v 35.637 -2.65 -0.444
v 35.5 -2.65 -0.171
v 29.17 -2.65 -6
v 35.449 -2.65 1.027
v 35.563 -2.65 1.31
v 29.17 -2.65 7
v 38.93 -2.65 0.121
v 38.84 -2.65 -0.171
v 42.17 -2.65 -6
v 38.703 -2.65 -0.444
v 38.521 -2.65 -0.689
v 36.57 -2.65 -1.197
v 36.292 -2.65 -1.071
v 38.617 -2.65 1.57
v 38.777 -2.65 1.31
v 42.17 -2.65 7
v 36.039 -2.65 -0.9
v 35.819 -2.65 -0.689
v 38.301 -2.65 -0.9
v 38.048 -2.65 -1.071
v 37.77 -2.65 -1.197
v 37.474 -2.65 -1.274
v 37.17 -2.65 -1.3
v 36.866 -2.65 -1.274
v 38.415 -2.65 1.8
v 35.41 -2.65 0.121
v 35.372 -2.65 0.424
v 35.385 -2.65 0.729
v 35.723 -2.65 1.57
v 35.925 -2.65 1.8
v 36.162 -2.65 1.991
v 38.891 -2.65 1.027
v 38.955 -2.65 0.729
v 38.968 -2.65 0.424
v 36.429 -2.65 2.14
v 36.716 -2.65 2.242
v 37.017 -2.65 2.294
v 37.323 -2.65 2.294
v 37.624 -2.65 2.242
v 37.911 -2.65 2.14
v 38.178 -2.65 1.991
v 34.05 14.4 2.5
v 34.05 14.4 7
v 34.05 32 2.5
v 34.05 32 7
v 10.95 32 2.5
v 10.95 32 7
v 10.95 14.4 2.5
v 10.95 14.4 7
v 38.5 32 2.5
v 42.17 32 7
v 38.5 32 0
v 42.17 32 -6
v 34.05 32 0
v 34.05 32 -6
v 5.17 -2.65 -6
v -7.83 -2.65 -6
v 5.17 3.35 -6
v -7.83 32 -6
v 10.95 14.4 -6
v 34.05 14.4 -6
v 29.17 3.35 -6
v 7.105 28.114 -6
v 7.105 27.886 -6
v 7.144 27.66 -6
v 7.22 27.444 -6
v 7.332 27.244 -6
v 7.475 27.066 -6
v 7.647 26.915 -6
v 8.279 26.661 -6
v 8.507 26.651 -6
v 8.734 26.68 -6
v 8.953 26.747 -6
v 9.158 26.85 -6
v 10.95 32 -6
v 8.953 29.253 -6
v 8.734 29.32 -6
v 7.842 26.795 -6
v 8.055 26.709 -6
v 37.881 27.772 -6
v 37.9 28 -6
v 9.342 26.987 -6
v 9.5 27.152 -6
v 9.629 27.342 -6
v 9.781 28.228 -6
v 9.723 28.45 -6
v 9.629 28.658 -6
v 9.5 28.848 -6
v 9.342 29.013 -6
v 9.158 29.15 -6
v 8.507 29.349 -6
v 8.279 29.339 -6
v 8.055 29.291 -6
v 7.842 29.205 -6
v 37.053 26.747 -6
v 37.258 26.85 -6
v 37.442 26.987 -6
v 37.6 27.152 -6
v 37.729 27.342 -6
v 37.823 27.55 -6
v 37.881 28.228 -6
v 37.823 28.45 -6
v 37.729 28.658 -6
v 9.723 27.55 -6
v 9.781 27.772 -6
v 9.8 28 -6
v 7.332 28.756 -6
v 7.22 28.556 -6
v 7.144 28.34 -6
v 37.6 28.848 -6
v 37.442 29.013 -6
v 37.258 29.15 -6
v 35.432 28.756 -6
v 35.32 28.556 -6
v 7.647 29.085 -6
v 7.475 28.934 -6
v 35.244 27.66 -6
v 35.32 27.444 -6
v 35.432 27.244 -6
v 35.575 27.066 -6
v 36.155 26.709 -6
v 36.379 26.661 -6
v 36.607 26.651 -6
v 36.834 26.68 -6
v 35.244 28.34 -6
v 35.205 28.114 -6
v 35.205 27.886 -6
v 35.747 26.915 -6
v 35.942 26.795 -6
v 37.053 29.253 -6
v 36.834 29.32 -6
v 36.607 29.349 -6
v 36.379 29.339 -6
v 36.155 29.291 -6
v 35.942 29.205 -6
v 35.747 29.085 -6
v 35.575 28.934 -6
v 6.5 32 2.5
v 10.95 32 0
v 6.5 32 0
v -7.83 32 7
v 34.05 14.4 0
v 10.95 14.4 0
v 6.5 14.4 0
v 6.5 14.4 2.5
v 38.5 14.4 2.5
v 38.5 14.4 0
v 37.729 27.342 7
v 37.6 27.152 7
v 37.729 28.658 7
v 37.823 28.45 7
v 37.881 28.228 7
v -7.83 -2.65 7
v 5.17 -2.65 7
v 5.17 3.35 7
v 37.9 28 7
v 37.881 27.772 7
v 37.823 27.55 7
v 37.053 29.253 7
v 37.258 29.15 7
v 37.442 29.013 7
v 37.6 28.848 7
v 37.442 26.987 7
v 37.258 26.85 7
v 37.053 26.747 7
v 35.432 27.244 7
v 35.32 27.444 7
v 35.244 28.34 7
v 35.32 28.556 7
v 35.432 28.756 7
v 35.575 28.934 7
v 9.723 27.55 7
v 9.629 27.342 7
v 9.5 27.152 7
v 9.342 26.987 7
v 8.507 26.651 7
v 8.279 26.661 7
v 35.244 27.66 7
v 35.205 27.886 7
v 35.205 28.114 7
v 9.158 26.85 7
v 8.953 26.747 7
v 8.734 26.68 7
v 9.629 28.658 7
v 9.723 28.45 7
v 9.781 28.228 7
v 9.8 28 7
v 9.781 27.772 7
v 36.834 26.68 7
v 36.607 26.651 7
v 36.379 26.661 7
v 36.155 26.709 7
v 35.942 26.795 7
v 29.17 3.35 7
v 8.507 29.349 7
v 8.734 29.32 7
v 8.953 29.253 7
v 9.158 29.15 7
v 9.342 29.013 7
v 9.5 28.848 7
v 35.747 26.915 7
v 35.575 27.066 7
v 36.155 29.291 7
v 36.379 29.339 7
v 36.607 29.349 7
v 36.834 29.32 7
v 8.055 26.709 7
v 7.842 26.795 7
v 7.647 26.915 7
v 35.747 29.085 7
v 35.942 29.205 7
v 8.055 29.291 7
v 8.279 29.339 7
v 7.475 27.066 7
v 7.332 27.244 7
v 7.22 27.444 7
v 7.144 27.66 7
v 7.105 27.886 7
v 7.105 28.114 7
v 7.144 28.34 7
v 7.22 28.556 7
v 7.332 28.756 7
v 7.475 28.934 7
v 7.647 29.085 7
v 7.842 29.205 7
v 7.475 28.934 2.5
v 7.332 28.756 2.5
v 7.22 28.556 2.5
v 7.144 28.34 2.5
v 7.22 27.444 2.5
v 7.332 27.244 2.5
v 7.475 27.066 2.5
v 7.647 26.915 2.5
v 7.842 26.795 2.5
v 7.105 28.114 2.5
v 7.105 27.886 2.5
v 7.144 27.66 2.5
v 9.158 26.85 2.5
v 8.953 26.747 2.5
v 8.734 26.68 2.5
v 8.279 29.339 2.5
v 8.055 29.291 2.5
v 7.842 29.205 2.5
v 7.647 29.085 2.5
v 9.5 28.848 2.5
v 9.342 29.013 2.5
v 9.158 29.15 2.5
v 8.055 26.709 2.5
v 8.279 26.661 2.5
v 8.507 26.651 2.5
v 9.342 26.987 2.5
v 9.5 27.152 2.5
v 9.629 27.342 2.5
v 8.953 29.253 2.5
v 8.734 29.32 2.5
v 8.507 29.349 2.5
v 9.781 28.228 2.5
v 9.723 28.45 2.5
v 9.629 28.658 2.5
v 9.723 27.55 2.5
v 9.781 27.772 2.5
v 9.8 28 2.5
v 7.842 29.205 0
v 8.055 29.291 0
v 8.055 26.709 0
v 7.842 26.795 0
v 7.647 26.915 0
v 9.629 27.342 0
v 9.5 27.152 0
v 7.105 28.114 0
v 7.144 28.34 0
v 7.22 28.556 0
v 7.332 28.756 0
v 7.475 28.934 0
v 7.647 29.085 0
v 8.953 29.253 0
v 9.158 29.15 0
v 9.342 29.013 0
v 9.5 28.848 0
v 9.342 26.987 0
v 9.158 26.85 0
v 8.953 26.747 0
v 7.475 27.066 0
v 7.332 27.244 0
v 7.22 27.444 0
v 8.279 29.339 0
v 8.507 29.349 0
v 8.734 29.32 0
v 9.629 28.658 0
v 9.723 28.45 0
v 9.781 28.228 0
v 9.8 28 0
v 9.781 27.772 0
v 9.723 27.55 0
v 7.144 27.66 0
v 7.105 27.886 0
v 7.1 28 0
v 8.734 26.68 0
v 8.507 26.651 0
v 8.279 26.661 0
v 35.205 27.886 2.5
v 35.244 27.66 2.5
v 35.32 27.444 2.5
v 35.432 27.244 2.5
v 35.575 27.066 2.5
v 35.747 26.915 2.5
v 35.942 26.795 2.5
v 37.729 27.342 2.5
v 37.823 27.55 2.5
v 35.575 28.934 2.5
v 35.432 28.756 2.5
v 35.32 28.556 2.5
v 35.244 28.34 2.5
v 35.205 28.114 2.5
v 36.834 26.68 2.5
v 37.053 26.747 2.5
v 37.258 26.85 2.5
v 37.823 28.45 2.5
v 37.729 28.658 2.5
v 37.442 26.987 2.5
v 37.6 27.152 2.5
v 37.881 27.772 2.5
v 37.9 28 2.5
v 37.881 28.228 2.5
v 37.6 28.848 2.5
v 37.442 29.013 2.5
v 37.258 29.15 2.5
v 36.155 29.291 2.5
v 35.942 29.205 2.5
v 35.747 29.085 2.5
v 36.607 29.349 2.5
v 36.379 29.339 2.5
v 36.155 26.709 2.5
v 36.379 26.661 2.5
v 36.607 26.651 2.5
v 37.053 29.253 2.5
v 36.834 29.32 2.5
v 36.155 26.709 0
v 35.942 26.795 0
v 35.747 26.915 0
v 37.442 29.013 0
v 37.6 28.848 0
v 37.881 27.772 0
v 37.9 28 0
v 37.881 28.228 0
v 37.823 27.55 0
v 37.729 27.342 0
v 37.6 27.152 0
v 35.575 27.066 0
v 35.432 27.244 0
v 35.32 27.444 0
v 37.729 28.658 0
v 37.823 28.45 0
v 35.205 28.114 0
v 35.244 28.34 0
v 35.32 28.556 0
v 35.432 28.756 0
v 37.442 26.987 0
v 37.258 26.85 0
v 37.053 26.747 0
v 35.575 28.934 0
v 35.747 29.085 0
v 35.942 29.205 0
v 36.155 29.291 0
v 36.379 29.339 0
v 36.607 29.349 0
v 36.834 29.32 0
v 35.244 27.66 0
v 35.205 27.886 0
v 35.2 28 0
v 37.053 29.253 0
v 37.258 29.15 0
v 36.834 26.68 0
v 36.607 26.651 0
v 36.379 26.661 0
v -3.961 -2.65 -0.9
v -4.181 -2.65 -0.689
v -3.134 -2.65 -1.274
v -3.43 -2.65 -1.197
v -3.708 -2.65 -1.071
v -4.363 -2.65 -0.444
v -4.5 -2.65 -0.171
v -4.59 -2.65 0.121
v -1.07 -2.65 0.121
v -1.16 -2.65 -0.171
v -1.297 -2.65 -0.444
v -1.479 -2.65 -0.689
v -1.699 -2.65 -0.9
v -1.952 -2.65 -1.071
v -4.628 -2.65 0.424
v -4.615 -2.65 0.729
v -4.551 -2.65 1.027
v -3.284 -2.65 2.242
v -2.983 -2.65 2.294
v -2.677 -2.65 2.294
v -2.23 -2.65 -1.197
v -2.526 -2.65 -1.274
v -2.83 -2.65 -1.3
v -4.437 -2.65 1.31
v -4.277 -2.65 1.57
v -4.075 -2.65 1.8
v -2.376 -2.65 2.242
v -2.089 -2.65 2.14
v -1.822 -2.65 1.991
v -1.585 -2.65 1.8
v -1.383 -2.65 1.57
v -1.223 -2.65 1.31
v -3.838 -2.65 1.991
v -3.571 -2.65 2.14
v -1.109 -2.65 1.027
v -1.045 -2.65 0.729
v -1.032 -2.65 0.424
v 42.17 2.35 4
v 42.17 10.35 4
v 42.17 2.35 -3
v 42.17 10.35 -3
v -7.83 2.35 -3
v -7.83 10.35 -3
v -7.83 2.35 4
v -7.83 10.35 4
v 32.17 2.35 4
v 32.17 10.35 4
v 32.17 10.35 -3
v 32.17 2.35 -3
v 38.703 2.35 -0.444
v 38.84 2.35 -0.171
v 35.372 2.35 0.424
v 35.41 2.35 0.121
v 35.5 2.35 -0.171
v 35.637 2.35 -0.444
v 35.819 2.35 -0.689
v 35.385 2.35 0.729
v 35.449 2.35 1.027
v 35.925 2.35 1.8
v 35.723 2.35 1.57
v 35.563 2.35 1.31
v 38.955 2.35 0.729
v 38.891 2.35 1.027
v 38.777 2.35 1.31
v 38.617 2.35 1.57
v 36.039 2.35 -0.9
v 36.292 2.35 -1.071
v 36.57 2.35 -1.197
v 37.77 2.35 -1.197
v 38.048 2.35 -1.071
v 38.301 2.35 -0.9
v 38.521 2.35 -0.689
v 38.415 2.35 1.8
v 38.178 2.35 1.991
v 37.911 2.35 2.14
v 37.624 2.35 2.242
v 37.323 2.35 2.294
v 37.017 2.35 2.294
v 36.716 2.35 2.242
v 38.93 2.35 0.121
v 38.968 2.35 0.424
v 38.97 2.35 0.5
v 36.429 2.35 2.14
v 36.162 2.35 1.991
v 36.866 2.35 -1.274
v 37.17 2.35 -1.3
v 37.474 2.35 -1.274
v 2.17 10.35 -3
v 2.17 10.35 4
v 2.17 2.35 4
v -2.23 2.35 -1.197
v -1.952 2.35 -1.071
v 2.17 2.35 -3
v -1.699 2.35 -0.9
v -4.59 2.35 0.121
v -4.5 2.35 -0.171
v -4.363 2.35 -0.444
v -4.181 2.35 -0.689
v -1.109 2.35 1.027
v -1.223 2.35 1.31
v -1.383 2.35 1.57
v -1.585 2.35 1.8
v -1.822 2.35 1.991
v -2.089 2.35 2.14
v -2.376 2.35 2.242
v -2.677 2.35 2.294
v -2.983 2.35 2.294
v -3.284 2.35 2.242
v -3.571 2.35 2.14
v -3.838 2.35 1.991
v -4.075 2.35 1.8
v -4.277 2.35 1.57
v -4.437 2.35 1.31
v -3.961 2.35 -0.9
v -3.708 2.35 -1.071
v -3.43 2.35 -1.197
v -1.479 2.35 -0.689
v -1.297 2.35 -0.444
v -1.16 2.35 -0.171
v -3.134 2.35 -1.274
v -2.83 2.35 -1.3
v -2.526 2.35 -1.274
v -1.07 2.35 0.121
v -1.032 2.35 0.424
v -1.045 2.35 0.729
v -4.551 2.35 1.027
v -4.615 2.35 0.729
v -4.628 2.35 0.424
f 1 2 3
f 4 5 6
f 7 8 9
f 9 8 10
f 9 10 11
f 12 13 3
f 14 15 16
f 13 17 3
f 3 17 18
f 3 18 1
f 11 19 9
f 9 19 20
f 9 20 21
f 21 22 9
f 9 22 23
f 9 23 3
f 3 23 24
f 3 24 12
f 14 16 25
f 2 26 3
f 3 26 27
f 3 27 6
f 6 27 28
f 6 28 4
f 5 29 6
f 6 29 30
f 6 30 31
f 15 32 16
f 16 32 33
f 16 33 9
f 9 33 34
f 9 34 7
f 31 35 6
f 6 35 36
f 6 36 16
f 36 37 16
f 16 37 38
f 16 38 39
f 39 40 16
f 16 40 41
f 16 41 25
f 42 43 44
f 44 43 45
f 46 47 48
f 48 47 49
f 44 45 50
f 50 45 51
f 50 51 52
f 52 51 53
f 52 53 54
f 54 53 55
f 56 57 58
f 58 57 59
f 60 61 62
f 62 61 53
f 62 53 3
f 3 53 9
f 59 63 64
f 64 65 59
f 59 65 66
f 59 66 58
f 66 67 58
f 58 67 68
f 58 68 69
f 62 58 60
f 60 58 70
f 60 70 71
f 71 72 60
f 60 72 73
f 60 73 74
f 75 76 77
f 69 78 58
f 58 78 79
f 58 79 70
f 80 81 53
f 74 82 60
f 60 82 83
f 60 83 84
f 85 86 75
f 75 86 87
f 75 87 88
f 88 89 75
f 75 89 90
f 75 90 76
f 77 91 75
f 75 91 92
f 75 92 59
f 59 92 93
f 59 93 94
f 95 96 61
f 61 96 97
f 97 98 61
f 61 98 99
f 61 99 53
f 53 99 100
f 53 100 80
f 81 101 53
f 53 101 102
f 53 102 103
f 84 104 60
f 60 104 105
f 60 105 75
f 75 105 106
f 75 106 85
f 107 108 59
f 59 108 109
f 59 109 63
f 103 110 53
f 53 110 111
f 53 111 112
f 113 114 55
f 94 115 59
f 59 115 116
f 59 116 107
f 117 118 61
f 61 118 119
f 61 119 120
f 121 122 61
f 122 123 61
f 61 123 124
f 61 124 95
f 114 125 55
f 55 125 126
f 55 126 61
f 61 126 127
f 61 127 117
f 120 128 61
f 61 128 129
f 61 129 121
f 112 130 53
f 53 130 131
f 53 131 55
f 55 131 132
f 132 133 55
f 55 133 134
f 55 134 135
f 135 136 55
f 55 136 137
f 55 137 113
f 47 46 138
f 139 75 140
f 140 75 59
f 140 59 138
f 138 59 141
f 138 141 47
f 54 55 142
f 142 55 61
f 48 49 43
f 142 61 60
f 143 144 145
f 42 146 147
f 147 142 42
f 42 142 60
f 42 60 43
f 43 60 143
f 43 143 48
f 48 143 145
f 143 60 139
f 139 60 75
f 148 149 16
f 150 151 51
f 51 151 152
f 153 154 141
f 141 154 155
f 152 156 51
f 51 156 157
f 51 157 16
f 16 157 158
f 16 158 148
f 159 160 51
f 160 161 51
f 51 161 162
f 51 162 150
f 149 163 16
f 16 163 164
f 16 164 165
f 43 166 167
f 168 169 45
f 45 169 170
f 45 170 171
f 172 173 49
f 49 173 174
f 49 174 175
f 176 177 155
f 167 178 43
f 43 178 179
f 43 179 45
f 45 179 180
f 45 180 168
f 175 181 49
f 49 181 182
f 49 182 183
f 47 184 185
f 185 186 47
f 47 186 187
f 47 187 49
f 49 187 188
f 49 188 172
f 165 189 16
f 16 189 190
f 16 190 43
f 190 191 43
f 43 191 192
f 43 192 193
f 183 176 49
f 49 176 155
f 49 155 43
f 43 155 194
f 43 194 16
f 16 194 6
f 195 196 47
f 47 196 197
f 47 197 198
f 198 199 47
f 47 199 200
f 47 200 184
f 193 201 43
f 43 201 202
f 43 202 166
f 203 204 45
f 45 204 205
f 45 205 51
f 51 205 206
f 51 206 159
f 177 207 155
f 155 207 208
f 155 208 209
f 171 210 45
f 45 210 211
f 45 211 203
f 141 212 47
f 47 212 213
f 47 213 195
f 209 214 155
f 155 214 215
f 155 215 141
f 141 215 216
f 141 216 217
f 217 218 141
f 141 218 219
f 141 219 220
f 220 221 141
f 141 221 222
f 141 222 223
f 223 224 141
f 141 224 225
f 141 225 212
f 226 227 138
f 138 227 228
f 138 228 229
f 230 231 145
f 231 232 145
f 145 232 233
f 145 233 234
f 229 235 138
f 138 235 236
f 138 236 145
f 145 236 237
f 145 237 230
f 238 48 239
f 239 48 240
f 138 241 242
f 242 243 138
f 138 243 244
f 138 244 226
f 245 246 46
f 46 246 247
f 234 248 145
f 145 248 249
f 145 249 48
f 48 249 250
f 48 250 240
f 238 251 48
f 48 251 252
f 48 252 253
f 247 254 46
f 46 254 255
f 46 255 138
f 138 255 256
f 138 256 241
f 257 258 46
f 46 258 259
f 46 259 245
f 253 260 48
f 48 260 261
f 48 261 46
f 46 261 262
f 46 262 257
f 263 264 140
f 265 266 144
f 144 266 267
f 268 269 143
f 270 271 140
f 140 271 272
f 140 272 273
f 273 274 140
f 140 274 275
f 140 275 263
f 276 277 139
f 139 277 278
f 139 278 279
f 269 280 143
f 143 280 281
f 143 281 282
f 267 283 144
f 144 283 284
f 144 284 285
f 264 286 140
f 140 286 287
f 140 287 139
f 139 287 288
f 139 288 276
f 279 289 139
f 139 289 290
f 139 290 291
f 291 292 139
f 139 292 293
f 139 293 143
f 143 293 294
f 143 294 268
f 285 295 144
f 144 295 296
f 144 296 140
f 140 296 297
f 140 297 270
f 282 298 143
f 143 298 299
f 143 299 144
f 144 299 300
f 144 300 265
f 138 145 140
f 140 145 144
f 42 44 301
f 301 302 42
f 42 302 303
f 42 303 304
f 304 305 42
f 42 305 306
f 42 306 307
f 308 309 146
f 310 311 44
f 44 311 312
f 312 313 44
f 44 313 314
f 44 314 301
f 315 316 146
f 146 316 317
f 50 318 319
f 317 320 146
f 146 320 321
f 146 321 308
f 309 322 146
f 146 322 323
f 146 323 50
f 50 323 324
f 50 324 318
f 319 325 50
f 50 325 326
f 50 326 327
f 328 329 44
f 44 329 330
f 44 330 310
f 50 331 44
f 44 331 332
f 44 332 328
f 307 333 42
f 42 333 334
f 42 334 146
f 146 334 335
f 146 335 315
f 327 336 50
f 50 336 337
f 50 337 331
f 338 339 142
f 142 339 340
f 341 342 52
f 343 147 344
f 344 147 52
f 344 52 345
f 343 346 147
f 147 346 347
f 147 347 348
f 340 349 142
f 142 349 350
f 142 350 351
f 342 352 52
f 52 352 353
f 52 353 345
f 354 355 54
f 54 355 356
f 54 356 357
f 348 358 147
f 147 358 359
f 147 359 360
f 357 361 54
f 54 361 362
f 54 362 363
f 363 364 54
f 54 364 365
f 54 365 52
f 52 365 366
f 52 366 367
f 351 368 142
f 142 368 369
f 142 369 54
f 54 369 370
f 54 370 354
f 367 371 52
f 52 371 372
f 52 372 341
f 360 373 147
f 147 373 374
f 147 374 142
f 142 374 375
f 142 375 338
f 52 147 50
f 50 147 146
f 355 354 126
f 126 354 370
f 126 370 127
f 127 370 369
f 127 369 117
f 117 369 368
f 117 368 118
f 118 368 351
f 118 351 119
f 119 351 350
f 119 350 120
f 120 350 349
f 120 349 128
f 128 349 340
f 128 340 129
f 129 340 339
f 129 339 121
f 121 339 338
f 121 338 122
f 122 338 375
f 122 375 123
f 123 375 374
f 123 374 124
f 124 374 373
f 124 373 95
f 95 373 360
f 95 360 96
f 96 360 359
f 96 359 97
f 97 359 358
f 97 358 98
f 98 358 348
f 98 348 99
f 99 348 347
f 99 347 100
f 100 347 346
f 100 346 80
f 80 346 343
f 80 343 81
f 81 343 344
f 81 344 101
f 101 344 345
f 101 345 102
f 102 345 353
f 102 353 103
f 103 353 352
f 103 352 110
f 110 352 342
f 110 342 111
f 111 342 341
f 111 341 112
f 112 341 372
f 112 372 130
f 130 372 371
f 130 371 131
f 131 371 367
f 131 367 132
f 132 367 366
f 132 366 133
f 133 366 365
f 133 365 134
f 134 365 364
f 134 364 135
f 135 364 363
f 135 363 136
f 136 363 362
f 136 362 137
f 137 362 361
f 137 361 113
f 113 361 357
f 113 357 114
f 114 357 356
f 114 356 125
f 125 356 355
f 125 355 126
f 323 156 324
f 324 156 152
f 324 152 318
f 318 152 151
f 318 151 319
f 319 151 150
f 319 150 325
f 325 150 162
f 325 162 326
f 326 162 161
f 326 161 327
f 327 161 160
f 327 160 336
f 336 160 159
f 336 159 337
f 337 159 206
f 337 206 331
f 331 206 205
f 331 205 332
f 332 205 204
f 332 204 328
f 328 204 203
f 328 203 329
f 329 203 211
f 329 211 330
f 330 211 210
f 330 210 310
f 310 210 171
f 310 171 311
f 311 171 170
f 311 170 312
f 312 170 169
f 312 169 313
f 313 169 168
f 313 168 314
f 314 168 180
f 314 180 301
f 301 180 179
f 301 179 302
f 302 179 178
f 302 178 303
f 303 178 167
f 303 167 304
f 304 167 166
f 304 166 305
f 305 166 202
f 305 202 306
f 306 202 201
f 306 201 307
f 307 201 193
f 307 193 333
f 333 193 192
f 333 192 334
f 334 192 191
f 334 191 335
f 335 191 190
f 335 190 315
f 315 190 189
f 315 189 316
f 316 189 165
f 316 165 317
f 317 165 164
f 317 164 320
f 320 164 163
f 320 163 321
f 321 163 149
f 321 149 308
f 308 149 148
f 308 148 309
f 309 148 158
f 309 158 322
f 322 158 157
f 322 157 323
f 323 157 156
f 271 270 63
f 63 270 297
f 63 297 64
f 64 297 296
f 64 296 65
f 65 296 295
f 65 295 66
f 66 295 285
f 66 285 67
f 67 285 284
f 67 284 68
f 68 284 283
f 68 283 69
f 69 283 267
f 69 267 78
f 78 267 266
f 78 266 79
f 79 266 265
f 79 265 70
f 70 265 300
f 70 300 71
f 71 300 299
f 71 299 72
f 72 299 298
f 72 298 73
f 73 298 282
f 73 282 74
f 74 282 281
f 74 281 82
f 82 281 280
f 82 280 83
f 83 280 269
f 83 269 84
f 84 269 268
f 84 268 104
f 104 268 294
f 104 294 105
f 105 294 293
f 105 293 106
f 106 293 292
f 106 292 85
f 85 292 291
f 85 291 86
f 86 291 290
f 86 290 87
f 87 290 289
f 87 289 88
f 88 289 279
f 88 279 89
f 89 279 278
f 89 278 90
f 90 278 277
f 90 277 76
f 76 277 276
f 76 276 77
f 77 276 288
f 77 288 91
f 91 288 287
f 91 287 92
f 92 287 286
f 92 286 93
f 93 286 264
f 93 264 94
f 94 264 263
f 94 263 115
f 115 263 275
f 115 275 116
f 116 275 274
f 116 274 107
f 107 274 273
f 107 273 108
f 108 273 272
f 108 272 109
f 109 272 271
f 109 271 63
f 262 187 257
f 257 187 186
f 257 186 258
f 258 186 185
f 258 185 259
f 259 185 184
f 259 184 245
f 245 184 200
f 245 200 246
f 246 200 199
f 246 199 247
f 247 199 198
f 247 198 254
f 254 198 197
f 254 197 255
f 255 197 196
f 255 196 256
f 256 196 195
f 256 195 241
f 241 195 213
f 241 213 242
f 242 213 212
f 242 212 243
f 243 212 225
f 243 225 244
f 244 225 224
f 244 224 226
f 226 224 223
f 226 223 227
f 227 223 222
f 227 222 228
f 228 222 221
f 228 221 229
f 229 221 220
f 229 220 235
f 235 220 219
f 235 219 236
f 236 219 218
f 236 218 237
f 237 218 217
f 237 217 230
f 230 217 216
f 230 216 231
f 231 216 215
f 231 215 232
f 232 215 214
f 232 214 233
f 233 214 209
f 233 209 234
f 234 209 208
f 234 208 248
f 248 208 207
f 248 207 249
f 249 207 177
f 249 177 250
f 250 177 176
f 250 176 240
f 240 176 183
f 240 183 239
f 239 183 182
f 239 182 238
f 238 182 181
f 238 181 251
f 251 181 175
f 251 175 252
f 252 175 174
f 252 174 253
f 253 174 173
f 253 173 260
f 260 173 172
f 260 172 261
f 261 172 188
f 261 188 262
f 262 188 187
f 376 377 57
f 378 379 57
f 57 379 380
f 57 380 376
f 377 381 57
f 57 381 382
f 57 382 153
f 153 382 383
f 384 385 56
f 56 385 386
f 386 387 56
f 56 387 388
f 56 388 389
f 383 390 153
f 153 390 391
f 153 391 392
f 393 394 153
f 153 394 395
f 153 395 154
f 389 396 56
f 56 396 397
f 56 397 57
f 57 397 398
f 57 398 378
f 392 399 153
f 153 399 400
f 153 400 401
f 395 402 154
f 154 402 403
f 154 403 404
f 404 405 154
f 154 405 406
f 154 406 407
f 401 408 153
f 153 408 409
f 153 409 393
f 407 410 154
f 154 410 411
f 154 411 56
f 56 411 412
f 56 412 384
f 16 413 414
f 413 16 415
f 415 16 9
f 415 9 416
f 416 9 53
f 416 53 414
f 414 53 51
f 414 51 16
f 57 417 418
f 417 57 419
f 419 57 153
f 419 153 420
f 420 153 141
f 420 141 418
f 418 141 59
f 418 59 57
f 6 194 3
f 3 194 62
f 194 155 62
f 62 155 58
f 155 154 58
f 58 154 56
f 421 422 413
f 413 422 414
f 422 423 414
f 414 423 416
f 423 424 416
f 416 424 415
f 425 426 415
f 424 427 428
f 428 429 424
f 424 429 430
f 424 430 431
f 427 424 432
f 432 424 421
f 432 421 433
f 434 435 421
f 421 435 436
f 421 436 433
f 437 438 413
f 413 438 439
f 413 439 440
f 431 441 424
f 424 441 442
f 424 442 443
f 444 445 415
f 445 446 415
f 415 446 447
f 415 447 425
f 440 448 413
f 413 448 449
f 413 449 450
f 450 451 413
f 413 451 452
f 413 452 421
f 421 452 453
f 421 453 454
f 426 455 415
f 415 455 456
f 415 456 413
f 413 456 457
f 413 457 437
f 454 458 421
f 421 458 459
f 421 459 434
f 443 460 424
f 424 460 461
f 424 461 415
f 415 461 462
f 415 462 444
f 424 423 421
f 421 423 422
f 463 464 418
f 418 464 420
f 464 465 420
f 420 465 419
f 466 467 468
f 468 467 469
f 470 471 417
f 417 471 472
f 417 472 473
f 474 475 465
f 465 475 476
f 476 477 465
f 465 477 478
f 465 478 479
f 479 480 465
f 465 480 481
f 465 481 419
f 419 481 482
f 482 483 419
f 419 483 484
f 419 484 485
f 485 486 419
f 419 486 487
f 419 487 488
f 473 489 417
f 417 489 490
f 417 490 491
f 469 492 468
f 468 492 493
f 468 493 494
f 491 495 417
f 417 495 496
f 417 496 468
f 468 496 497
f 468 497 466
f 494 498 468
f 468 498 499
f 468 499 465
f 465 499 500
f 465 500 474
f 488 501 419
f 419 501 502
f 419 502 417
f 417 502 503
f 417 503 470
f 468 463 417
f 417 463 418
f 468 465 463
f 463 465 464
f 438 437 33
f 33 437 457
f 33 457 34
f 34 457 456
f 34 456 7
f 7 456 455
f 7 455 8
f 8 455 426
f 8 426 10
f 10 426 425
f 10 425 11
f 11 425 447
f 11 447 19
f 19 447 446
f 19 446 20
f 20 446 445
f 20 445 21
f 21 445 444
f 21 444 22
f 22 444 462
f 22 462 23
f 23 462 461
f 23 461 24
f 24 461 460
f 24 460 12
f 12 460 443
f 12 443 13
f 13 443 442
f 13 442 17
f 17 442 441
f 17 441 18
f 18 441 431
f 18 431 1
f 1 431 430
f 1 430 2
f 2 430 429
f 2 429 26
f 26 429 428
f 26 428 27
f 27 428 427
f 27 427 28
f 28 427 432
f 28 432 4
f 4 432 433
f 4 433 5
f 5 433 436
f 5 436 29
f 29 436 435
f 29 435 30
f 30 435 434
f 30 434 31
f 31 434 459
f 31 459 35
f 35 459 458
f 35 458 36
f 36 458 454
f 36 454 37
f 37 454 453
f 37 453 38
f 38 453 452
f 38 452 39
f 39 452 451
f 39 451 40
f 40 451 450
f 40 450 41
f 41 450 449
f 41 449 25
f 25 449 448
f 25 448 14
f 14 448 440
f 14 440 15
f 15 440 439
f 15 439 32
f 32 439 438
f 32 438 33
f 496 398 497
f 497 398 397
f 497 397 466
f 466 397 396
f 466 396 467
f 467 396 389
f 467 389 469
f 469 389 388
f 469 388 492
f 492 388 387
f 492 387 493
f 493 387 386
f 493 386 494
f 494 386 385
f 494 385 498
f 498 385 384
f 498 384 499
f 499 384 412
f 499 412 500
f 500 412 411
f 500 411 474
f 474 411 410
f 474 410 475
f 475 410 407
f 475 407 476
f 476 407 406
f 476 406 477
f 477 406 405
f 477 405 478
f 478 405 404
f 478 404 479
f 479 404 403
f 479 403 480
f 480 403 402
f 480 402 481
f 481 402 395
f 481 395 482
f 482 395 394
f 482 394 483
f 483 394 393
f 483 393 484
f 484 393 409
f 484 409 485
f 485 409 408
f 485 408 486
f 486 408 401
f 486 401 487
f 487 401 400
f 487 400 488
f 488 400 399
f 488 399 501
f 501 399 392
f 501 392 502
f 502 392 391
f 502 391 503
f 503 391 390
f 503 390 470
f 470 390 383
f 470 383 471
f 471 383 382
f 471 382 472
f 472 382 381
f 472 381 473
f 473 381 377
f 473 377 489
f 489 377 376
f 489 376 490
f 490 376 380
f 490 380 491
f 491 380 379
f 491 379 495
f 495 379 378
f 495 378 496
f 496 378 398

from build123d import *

# Parameters (mm, degrees)
SKETCH1_W                = 45
SKETCH1_H                = 6
BOSS_EXTRUDE1_DEPTH      = 32
SKETCH2_W                = 23.1
SKETCH2_H                = 17.6
CUT_EXTRUDE1_DEPTH       = 56.542776308
SKETCH3_W                = 45
SKETCH3_H                = 20
BOSS_EXTRUDE2_DEPTH      = 6
SKETCH4_W                = 20
SKETCH4_H                = 6
BOSS_EXTRUDE3_DEPTH      = 30
SKETCH5_R                = 1.4
CUT_EXTRUDE2_DEPTH       = 87.423376467
BOSS_EXTRUDE4_DEPTH      = 7
SKETCH7_W                = 32
SKETCH7_H                = 2.5
CUT_EXTRUDE3_DEPTH       = 17.6
SKETCH8_R                = 1.35
CUT_EXTRUDE4_DEPTH       = 86.895285086
CHAMFER1_SIZE            = 1
FILLET1_R                = 1
SKETCH9_W                = 75
SKETCH9_H                = 10
CUT_EXTRUDE5_DEPTH       = 86.895285086
SKETCH10_W               = 45
SKETCH10_H               = 13
BOSS_EXTRUDE5_DEPTH      = 6.65
SKETCH11_W               = 2.83
SKETCH11_H               = 34.65
CUT_EXTRUDE6_DEPTH       = 57.727418415
SKETCH12_W               = 13
SKETCH12_H               = 34.65
BOSS_EXTRUDE6_DEPTH      = 7.83
SKETCH13_W               = 24
SKETCH13_H               = 6
CUT_EXTRUDE7_DEPTH       = 55.509713813
SKETCH14_W               = 7
SKETCH14_H               = 8
CUT_EXTRUDE8_DEPTH       = 10
SKETCH15_W               = 7
SKETCH15_H               = 8
CUT_EXTRUDE9_DEPTH       = 10
M3_CLEARANCE_HOLE1_D     = 3.6
M3_CLEARANCE_HOLE1_DEPTH = 5


with BuildPart() as part:
    # Sketch1 → Boss-Extrude1 (new body)
    with BuildSketch(Plane(origin=(0, 0, 0), x_dir=(1, 0, 0), z_dir=(0, 1, 0))):
        with Locations((22.5, 3)):
            Rectangle(SKETCH1_W, SKETCH1_H)
    extrude(amount=BOSS_EXTRUDE1_DEPTH)

    # Sketch2 → Cut-Extrude1 (cut, through all)
    with BuildSketch(Plane.XY):
        with Locations((22.5, 23.2)):
            Rectangle(SKETCH2_W, SKETCH2_H)
    extrude(amount=-CUT_EXTRUDE1_DEPTH, mode=Mode.SUBTRACT)

    # Sketch3 → Boss-Extrude2 (add)
    with BuildSketch(Plane.XZ):
        with Locations((22.5, -10)):
            Rectangle(SKETCH3_W, SKETCH3_H)
    extrude(amount=BOSS_EXTRUDE2_DEPTH)

    # Sketch4 → Boss-Extrude3 (add)
    with BuildSketch(Plane(origin=(45, 0, 0), x_dir=(0, 0, -1), z_dir=(1, 0, 0))):
        with Locations((10, -3)):
            Rectangle(SKETCH4_W, SKETCH4_H)
    extrude(amount=BOSS_EXTRUDE3_DEPTH)

    # Sketch5 → Cut-Extrude2 (cut, through all)
    with BuildSketch(Plane.XZ.offset(6)):
        with Locations(Location((37.288839919, -16.75, 0), (0, 0, 270))):
            Circle(SKETCH5_R)
        with Locations(Location((47.288839919, -16.75, 0), (0, 0, 270))):
            Circle(SKETCH5_R)
        with Locations(Location((47.288839919, -6.75, 0), (0, 0, 270))):
            Circle(SKETCH5_R)
        with Locations(Location((59.538839919, -16.75, 0), (0, 0, 270))):
            Circle(SKETCH5_R)
        with Locations(Location((71.788839919, -16.75, 0), (0, 0, 270))):
            Circle(SKETCH5_R)
        with Locations(Location((71.788839919, -6.75, 0), (0, 0, 270))):
            Circle(SKETCH5_R)
        with Locations(Location((59.538839919, -6.75, 0), (0, 0, 270))):
            Circle(SKETCH5_R)
    extrude(amount=-CUT_EXTRUDE2_DEPTH, mode=Mode.SUBTRACT)

    # Sketch6 → Boss-Extrude4 (add)
    with BuildSketch(Plane.XY):
        Polygon((0, 32), (0, -6), (45, -6), (45, 0), (45, 32), (34.05, 32), (34.05, 14.4), (10.95, 14.4), (10.95, 32), align=None)
    extrude(amount=BOSS_EXTRUDE4_DEPTH)

    # Sketch7 → Cut-Extrude3 (cut)
    with BuildSketch(Plane(origin=(0, 32, 0), x_dir=(1, 0, 0), z_dir=(0, 1, 0))):
        with Locations((22.5, -1.25)):
            Rectangle(SKETCH7_W, SKETCH7_H)
    extrude(amount=-CUT_EXTRUDE3_DEPTH, mode=Mode.SUBTRACT)

    # Sketch8 → Cut-Extrude4 (cut, through all)
    with BuildSketch(Plane.XY.offset(7)):
        with Locations((8.45, 28)):
            Circle(SKETCH8_R)
        with Locations((36.55, 28)):
            Circle(SKETCH8_R)
    extrude(amount=-CUT_EXTRUDE4_DEPTH, mode=Mode.SUBTRACT)

    # Chamfer1
    chamfer1_edges = [part.edges().sort_by_distance(p)[0] for p in [
        (22.5, -6, 7),
        (0, -6, -6.5),
        (37.5, -6, -20),
        (60, -6, 0),
        (75, -6, -10),
        (45, -6, 3.5),
    ]]
    chamfer(chamfer1_edges, length=CHAMFER1_SIZE)

    # Fillet1
    # the kernel refuses this fillet: 1 mm, written as the material it adds along each edge
    with BuildSketch(Plane(origin=(45, 0, -6), x_dir=(0, 1, 0), z_dir=(0, 0, 1))) as fillet1_piece_1:
        with BuildLine():
            CenterArc((FILLET1_R, -FILLET1_R), FILLET1_R, 90, 90)
            Line((0, -FILLET1_R), (0, 0))
            Line((0, 0), (FILLET1_R, 0))
        make_face()
    extrude(amount=6)
    with BuildSketch(Plane(origin=(45, 0, -6), x_dir=(0, 0, -1), z_dir=(-1, 0, 0))) as fillet1_piece_2:
        with BuildLine():
            CenterArc((FILLET1_R, -FILLET1_R), FILLET1_R, 90, 90)
            Line((0, -FILLET1_R), (0, 0))
            Line((0, 0), (FILLET1_R, 0))
        make_face()
    extrude(amount=45)
    with BuildSketch(Plane(origin=(45, -7.5, 0), x_dir=(1, 0, 0), z_dir=(0, 1, 0))) as fillet1_piece_3_section:
        with BuildLine():
            CenterArc((FILLET1_R, -FILLET1_R), FILLET1_R, 90, 90)
            Line((0, -FILLET1_R), (0, 0))
            Line((0, 0), (FILLET1_R, 0))
        make_face()
    fillet1_piece_3 = extrude(amount=7.5, mode=Mode.PRIVATE)
    fillet1_piece_3 = split(fillet1_piece_3, bisect_by=Plane(origin=(45.042981958, -4.592558865, 0.407441135), z_dir=(0, -0.7071067811865476, 0.7071067811865476)), keep=Keep.TOP, mode=Mode.PRIVATE)
    fillet1_piece_3 = split(fillet1_piece_3, bisect_by=Plane(origin=(45.16446835, -4.83553165, 0.528927527), z_dir=(-0.7071067811865476, 0.7071067811865476, 0)), keep=Keep.TOP, mode=Mode.PRIVATE)
    add(fillet1_piece_3)
    with BuildSketch(Plane(origin=(45, -7.5, 0), x_dir=(1, 0, 0), z_dir=(0, 1, 0))) as fillet1_piece_4_section:
        with BuildLine():
            CenterArc((FILLET1_R, -FILLET1_R), FILLET1_R, 90, 90)
            Line((0, -FILLET1_R), (0, 0))
            Line((0, 0), (FILLET1_R, 0))
        make_face()
    fillet1_piece_4 = extrude(amount=7.5, mode=Mode.PRIVATE)
    fillet1_piece_4 = split(fillet1_piece_4, bisect_by=Plane(origin=(45.528927527, -4.83553165, 0.16446835), z_dir=(0, 0.7071067811865476, -0.7071067811865476)), keep=Keep.TOP, mode=Mode.PRIVATE)
    fillet1_piece_4 = split(fillet1_piece_4, bisect_by=Plane(origin=(45.407441135, -4.592558865, 0.042981958), z_dir=(0.7071067811865476, -0.7071067811865476, 0)), keep=Keep.TOP, mode=Mode.PRIVATE)
    add(fillet1_piece_4)
    with BuildSketch(Plane(origin=(45, -7.5, 0), x_dir=(1, 0, 0), z_dir=(0, 1, 0))) as fillet1_piece_5_section:
        with BuildLine():
            CenterArc((FILLET1_R, -FILLET1_R), FILLET1_R, 90, 90)
            Line((0, -FILLET1_R), (0, 0))
            Line((0, 0), (FILLET1_R, 0))
        make_face()
    fillet1_piece_5 = extrude(amount=7.5, mode=Mode.PRIVATE)
    fillet1_piece_5 = split(fillet1_piece_5, bisect_by=Plane(origin=(45.222376568, -3.546419499, 1.453580501), z_dir=(0, 0.7071067811865476, -0.7071067811865476)), keep=Keep.TOP, mode=Mode.PRIVATE)
    fillet1_piece_5 = split(fillet1_piece_5, bisect_by=Plane(origin=(46.453580501, -3.546419499, 0.222376568), z_dir=(-0.7071067811865476, 0.7071067811865476, 0)), keep=Keep.TOP, mode=Mode.PRIVATE)
    add(fillet1_piece_5)
    with BuildSketch(Plane(origin=(45, 0, -8.5), x_dir=(0, 1, 0), z_dir=(0, 0, 1))) as fillet1_piece_6a_section:
        with BuildLine():
            CenterArc((FILLET1_R, -FILLET1_R), FILLET1_R, 90, 90)
            Line((0, -FILLET1_R), (0, 0))
            Line((0, 0), (FILLET1_R, 0))
        make_face()
    fillet1_piece_6a = extrude(amount=8.5, mode=Mode.PRIVATE)
    fillet1_piece_6a = split(fillet1_piece_6a, bisect_by=Plane(origin=(45.224393795, 0.227043758, -6), z_dir=(0, 0, -1)), keep=Keep.TOP, mode=Mode.PRIVATE)
    fillet1_piece_6a = fillet1_piece_6a - Plane(origin=(47.288839919, 0.227043758, -6.75), x_dir=(0, 0, -1), z_dir=(0, -1, 0)) * Cylinder(1.4, 21, mode=Mode.PRIVATE)
    with BuildSketch(Plane(origin=(47.5, 0, -6), x_dir=(0, 0, -1), z_dir=(-1, 0, 0))) as fillet1_piece_6b_section:
        with BuildLine():
            CenterArc((FILLET1_R, -FILLET1_R), FILLET1_R, 90, 90)
            Line((0, -FILLET1_R), (0, 0))
            Line((0, 0), (FILLET1_R, 0))
        make_face()
    fillet1_piece_6b = extrude(amount=47.5, mode=Mode.PRIVATE)
    fillet1_piece_6b = split(fillet1_piece_6b, bisect_by=Plane(origin=(45, 0.236066937, -6.212082633), z_dir=(1, 0, 0)), keep=Keep.TOP, mode=Mode.PRIVATE)
    fillet1_piece_6b = fillet1_piece_6b - Plane(origin=(47.288839919, 0.236066937, -6.75), x_dir=(0, 0, -1), z_dir=(0, -1, 0)) * Cylinder(1.4, 99, mode=Mode.PRIVATE)
    fillet1_piece_6 = fillet1_piece_6a & fillet1_piece_6b
    add(fillet1_piece_6)
    with BuildSketch(Plane(origin=(45, -7.5, 0), x_dir=(1, 0, 0), z_dir=(0, 1, 0))) as fillet1_piece_7a_section:
        with BuildLine():
            CenterArc((FILLET1_R, -FILLET1_R), FILLET1_R, 90, 90)
            Line((0, -FILLET1_R), (0, 0))
            Line((0, 0), (FILLET1_R, 0))
        make_face()
    fillet1_piece_7a = extrude(amount=10, mode=Mode.PRIVATE)
    fillet1_piece_7a = split(fillet1_piece_7a, bisect_by=Plane(origin=(45.226395114, 0, 0.226395114), z_dir=(0, 1, 0)), keep=Keep.TOP, mode=Mode.PRIVATE)
    with BuildSketch(Plane(origin=(45, 0, -6), x_dir=(0, 1, 0), z_dir=(0, 0, 1))) as fillet1_piece_7b_section:
        with BuildLine():
            CenterArc((FILLET1_R, -FILLET1_R), FILLET1_R, 90, 90)
            Line((0, -FILLET1_R), (0, 0))
            Line((0, 0), (FILLET1_R, 0))
        make_face()
    fillet1_piece_7b = extrude(amount=8.5, mode=Mode.PRIVATE)
    fillet1_piece_7b = split(fillet1_piece_7b, bisect_by=Plane(origin=(45.226395114, 0.226395114, 0), z_dir=(0, 0, 1)), keep=Keep.TOP, mode=Mode.PRIVATE)
    fillet1_piece_7 = fillet1_piece_7a & fillet1_piece_7b
    add(fillet1_piece_7)

    # Sketch9 → Cut-Extrude5 (cut, through all)
    with BuildSketch(Plane.XY.offset(7)):
        with Locations((37.5, -1)):
            Rectangle(SKETCH9_W, SKETCH9_H)
    extrude(amount=-CUT_EXTRUDE5_DEPTH, mode=Mode.SUBTRACT)

    # Sketch10 → Boss-Extrude5 (add)
    with BuildSketch(Plane.XZ.offset(-4)):
        with Locations((22.5, 0.5)):
            Rectangle(SKETCH10_W, SKETCH10_H)
    extrude(amount=BOSS_EXTRUDE5_DEPTH)

    # Sketch11 → Cut-Extrude6 (cut, through all)
    with BuildSketch(Plane(origin=(0, 0, -6), x_dir=(-1, 0, 0), z_dir=(0, 0, -1))):
        with Locations((-43.585, 14.675)):
            Rectangle(SKETCH11_W, SKETCH11_H)
    extrude(amount=-CUT_EXTRUDE6_DEPTH, mode=Mode.SUBTRACT)

    # Sketch12 → Boss-Extrude6 (add)
    with BuildSketch(Plane.ZY):
        with Locations((0.5, 14.675)):
            Rectangle(SKETCH12_W, SKETCH12_H)
    extrude(amount=BOSS_EXTRUDE6_DEPTH)

    # Sketch13 → Cut-Extrude7 (cut, through all)
    with BuildSketch(Plane(origin=(0, 0, -6), x_dir=(-1, 0, 0), z_dir=(0, 0, -1))):
        with Locations((-17.17, 0.35)):
            Rectangle(SKETCH13_W, SKETCH13_H)
    extrude(amount=-CUT_EXTRUDE7_DEPTH, mode=Mode.SUBTRACT)

    # Sketch14 → Cut-Extrude8 (cut)
    with BuildSketch(Plane(origin=(42.17, 0, 0), x_dir=(0, 0, -1), z_dir=(1, 0, 0))):
        with Locations((-0.5, 6.35)):
            Rectangle(SKETCH14_W, SKETCH14_H)
    extrude(amount=-CUT_EXTRUDE8_DEPTH, mode=Mode.SUBTRACT)

    # Sketch15 → Cut-Extrude9 (cut)
    with BuildSketch(Plane.ZY.offset(7.83)):
        with Locations((0.5, 6.35)):
            Rectangle(SKETCH15_W, SKETCH15_H)
    extrude(amount=-CUT_EXTRUDE9_DEPTH, mode=Mode.SUBTRACT)

    # M3 Clearance Hole1
    with Locations(Plane(origin=(0, -2.65, 0), x_dir=(-1, 0, 0), z_dir=(0, -1, 0))):
        with Locations((2.83, -0.5), (-37.17, -0.5)):
            Hole(M3_CLEARANCE_HOLE1_D / 2, depth=M3_CLEARANCE_HOLE1_DEPTH)


solid = part.part
